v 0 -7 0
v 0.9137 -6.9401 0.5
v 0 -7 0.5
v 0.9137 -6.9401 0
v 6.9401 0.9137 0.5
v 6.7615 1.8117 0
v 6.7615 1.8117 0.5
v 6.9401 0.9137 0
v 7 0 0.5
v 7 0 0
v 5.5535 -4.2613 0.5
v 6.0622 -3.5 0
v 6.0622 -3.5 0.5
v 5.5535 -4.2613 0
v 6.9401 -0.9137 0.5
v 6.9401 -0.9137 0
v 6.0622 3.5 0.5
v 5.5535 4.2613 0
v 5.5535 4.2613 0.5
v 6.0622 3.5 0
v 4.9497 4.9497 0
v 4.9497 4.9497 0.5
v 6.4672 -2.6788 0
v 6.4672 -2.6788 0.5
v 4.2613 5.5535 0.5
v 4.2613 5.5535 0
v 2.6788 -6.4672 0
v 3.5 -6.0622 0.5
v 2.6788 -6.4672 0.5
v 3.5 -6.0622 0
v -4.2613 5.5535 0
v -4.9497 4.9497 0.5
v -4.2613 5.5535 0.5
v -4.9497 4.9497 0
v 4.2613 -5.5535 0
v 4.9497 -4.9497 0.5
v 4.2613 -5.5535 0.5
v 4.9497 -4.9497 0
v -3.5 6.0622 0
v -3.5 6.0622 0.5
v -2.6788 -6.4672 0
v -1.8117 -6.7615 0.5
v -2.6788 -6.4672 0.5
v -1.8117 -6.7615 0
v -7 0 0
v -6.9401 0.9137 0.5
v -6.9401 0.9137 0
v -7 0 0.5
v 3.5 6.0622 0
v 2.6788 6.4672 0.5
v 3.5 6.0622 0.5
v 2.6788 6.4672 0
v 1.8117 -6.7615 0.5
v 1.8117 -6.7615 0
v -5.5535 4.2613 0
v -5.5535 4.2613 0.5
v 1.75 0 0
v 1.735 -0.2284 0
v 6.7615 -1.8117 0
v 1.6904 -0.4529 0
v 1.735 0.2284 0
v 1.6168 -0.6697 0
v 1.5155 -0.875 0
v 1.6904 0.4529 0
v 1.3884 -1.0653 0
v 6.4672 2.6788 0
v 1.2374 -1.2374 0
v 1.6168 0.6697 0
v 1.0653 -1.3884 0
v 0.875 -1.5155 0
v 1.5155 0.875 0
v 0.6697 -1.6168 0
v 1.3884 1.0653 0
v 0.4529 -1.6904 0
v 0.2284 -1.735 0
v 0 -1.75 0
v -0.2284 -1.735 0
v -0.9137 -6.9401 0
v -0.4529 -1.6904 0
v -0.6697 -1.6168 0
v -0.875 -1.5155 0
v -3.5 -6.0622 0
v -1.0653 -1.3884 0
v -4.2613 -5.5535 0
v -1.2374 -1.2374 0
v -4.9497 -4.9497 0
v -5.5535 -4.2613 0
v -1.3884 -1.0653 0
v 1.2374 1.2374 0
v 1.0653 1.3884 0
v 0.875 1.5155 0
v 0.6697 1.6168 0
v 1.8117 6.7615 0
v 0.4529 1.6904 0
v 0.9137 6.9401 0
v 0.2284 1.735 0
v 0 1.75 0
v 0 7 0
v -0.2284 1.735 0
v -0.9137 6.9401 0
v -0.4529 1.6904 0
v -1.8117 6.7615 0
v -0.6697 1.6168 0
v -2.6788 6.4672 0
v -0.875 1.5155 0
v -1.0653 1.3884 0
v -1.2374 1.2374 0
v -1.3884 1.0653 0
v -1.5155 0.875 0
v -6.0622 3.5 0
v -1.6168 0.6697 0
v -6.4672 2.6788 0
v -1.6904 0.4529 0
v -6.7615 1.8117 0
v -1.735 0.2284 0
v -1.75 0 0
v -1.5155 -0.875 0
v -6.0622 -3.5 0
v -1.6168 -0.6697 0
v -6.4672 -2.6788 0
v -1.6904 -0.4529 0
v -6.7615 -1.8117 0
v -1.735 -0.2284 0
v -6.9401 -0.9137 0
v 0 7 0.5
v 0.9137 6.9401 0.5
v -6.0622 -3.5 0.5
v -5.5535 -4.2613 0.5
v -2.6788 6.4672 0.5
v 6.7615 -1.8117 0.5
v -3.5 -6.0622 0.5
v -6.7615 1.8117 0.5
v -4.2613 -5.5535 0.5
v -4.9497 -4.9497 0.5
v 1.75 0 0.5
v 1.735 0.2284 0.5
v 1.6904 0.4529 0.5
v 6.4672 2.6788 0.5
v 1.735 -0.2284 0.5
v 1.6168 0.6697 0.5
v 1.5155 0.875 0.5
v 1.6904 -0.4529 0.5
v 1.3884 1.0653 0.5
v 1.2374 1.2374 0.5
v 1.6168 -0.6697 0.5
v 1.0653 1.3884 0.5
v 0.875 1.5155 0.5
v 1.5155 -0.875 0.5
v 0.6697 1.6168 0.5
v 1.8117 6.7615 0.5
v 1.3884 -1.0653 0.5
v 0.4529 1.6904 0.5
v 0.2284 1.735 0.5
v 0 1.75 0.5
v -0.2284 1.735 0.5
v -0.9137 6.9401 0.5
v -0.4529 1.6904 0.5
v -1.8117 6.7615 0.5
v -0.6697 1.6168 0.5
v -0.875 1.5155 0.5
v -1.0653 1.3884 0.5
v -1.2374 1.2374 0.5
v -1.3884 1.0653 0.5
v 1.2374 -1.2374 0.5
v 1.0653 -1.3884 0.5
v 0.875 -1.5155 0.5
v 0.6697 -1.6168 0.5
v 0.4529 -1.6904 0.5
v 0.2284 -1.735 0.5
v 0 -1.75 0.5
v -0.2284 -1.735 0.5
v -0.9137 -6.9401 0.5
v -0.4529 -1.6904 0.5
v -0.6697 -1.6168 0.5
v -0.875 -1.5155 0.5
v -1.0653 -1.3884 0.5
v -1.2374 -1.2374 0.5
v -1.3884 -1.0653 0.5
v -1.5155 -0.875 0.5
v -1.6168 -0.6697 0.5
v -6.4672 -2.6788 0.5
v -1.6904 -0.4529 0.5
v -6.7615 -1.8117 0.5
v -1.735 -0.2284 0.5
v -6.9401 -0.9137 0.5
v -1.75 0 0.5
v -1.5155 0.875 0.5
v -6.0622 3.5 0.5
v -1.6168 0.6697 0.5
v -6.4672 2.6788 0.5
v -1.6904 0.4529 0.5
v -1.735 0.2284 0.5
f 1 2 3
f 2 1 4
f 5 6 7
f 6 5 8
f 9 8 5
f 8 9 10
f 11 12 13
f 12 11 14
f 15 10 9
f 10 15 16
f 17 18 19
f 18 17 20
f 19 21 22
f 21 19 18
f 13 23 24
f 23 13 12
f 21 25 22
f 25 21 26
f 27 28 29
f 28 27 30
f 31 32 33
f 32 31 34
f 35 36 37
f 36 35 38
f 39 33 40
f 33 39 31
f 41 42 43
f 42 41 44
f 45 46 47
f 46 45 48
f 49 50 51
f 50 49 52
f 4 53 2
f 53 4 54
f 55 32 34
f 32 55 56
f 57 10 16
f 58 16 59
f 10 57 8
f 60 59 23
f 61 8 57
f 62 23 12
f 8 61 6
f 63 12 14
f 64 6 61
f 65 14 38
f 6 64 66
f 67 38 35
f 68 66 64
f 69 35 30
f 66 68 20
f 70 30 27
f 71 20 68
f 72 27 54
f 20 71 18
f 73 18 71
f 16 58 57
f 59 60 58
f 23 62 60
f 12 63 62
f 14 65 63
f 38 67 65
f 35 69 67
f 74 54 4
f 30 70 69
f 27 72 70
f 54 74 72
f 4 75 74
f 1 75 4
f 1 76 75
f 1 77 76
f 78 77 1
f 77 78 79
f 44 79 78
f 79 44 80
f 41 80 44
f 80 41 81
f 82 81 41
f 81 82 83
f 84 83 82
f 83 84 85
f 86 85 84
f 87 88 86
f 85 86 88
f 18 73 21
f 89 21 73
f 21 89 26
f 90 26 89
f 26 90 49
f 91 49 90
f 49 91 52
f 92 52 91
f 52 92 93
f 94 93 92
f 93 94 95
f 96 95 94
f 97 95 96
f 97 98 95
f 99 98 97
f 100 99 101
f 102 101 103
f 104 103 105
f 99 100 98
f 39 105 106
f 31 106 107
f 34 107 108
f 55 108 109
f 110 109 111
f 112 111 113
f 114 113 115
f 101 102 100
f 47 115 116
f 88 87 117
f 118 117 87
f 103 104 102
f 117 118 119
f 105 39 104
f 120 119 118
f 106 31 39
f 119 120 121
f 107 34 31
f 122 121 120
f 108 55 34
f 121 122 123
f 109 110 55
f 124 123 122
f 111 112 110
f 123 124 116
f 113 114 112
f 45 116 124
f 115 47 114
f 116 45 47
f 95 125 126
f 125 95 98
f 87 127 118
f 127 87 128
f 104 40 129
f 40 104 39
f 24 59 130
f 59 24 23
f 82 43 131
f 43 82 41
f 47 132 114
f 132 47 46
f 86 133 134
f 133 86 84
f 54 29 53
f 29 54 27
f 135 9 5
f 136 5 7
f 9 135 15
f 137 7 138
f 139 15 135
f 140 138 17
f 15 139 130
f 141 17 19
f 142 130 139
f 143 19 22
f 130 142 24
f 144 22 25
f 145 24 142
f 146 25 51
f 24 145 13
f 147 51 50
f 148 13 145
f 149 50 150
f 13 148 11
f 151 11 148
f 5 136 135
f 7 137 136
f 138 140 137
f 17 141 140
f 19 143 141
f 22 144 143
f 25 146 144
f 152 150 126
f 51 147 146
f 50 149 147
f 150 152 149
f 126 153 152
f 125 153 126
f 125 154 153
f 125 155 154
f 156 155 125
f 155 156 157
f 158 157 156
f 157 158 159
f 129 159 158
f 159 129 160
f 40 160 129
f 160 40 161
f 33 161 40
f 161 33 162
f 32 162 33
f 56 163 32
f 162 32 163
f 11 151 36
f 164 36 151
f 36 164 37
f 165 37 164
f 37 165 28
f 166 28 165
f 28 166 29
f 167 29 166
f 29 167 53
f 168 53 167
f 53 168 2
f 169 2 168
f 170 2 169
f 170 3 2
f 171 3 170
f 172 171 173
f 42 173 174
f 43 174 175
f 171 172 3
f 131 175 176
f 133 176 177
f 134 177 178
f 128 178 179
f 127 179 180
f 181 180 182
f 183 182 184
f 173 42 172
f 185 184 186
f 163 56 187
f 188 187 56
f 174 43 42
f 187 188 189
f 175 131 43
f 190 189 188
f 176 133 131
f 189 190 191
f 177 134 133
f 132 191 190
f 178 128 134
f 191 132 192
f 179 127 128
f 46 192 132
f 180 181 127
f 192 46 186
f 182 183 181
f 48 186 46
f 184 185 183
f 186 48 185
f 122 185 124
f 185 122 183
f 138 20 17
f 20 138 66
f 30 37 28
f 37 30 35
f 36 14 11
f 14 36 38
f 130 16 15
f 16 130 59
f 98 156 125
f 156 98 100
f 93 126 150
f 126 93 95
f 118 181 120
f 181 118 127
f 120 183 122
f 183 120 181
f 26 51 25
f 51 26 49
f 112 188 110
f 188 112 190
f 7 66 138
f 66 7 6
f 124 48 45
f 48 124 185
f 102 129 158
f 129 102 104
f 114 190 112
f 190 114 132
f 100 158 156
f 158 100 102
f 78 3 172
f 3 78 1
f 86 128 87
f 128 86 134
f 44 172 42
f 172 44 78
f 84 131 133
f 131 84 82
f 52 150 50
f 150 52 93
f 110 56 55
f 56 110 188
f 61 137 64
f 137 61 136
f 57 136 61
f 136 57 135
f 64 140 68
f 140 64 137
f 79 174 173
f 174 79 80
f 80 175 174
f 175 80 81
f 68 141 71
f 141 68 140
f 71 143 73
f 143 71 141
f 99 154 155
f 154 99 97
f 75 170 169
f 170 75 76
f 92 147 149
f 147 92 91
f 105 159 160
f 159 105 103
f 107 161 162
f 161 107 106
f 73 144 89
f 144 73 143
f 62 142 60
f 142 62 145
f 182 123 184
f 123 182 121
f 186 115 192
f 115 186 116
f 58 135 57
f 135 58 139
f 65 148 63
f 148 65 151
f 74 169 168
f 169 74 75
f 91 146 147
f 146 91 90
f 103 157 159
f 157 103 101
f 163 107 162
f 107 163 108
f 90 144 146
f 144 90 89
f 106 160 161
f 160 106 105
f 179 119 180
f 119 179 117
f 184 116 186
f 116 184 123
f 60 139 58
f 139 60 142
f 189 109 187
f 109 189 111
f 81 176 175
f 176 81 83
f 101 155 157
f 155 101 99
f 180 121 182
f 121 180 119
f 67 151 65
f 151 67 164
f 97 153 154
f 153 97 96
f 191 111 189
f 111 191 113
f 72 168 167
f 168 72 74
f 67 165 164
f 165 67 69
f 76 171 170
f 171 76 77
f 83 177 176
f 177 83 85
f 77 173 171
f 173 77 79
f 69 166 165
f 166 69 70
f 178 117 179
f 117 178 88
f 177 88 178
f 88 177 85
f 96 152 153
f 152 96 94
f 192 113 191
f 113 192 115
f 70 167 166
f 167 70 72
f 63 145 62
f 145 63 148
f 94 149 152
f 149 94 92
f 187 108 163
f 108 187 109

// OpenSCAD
// Gen-CR — assembly gap shim, h = run_clear (rotor face -> flange); copper is inside the flanges
include <parameters.scad>;
$fn = 48;
difference() {
    cylinder(d=spacer_pad_od, h=gap_spacer_h);
    translate([0, 0, -0.1]) cylinder(d=spacer_pad_id, h=gap_spacer_h + 0.2);
}
